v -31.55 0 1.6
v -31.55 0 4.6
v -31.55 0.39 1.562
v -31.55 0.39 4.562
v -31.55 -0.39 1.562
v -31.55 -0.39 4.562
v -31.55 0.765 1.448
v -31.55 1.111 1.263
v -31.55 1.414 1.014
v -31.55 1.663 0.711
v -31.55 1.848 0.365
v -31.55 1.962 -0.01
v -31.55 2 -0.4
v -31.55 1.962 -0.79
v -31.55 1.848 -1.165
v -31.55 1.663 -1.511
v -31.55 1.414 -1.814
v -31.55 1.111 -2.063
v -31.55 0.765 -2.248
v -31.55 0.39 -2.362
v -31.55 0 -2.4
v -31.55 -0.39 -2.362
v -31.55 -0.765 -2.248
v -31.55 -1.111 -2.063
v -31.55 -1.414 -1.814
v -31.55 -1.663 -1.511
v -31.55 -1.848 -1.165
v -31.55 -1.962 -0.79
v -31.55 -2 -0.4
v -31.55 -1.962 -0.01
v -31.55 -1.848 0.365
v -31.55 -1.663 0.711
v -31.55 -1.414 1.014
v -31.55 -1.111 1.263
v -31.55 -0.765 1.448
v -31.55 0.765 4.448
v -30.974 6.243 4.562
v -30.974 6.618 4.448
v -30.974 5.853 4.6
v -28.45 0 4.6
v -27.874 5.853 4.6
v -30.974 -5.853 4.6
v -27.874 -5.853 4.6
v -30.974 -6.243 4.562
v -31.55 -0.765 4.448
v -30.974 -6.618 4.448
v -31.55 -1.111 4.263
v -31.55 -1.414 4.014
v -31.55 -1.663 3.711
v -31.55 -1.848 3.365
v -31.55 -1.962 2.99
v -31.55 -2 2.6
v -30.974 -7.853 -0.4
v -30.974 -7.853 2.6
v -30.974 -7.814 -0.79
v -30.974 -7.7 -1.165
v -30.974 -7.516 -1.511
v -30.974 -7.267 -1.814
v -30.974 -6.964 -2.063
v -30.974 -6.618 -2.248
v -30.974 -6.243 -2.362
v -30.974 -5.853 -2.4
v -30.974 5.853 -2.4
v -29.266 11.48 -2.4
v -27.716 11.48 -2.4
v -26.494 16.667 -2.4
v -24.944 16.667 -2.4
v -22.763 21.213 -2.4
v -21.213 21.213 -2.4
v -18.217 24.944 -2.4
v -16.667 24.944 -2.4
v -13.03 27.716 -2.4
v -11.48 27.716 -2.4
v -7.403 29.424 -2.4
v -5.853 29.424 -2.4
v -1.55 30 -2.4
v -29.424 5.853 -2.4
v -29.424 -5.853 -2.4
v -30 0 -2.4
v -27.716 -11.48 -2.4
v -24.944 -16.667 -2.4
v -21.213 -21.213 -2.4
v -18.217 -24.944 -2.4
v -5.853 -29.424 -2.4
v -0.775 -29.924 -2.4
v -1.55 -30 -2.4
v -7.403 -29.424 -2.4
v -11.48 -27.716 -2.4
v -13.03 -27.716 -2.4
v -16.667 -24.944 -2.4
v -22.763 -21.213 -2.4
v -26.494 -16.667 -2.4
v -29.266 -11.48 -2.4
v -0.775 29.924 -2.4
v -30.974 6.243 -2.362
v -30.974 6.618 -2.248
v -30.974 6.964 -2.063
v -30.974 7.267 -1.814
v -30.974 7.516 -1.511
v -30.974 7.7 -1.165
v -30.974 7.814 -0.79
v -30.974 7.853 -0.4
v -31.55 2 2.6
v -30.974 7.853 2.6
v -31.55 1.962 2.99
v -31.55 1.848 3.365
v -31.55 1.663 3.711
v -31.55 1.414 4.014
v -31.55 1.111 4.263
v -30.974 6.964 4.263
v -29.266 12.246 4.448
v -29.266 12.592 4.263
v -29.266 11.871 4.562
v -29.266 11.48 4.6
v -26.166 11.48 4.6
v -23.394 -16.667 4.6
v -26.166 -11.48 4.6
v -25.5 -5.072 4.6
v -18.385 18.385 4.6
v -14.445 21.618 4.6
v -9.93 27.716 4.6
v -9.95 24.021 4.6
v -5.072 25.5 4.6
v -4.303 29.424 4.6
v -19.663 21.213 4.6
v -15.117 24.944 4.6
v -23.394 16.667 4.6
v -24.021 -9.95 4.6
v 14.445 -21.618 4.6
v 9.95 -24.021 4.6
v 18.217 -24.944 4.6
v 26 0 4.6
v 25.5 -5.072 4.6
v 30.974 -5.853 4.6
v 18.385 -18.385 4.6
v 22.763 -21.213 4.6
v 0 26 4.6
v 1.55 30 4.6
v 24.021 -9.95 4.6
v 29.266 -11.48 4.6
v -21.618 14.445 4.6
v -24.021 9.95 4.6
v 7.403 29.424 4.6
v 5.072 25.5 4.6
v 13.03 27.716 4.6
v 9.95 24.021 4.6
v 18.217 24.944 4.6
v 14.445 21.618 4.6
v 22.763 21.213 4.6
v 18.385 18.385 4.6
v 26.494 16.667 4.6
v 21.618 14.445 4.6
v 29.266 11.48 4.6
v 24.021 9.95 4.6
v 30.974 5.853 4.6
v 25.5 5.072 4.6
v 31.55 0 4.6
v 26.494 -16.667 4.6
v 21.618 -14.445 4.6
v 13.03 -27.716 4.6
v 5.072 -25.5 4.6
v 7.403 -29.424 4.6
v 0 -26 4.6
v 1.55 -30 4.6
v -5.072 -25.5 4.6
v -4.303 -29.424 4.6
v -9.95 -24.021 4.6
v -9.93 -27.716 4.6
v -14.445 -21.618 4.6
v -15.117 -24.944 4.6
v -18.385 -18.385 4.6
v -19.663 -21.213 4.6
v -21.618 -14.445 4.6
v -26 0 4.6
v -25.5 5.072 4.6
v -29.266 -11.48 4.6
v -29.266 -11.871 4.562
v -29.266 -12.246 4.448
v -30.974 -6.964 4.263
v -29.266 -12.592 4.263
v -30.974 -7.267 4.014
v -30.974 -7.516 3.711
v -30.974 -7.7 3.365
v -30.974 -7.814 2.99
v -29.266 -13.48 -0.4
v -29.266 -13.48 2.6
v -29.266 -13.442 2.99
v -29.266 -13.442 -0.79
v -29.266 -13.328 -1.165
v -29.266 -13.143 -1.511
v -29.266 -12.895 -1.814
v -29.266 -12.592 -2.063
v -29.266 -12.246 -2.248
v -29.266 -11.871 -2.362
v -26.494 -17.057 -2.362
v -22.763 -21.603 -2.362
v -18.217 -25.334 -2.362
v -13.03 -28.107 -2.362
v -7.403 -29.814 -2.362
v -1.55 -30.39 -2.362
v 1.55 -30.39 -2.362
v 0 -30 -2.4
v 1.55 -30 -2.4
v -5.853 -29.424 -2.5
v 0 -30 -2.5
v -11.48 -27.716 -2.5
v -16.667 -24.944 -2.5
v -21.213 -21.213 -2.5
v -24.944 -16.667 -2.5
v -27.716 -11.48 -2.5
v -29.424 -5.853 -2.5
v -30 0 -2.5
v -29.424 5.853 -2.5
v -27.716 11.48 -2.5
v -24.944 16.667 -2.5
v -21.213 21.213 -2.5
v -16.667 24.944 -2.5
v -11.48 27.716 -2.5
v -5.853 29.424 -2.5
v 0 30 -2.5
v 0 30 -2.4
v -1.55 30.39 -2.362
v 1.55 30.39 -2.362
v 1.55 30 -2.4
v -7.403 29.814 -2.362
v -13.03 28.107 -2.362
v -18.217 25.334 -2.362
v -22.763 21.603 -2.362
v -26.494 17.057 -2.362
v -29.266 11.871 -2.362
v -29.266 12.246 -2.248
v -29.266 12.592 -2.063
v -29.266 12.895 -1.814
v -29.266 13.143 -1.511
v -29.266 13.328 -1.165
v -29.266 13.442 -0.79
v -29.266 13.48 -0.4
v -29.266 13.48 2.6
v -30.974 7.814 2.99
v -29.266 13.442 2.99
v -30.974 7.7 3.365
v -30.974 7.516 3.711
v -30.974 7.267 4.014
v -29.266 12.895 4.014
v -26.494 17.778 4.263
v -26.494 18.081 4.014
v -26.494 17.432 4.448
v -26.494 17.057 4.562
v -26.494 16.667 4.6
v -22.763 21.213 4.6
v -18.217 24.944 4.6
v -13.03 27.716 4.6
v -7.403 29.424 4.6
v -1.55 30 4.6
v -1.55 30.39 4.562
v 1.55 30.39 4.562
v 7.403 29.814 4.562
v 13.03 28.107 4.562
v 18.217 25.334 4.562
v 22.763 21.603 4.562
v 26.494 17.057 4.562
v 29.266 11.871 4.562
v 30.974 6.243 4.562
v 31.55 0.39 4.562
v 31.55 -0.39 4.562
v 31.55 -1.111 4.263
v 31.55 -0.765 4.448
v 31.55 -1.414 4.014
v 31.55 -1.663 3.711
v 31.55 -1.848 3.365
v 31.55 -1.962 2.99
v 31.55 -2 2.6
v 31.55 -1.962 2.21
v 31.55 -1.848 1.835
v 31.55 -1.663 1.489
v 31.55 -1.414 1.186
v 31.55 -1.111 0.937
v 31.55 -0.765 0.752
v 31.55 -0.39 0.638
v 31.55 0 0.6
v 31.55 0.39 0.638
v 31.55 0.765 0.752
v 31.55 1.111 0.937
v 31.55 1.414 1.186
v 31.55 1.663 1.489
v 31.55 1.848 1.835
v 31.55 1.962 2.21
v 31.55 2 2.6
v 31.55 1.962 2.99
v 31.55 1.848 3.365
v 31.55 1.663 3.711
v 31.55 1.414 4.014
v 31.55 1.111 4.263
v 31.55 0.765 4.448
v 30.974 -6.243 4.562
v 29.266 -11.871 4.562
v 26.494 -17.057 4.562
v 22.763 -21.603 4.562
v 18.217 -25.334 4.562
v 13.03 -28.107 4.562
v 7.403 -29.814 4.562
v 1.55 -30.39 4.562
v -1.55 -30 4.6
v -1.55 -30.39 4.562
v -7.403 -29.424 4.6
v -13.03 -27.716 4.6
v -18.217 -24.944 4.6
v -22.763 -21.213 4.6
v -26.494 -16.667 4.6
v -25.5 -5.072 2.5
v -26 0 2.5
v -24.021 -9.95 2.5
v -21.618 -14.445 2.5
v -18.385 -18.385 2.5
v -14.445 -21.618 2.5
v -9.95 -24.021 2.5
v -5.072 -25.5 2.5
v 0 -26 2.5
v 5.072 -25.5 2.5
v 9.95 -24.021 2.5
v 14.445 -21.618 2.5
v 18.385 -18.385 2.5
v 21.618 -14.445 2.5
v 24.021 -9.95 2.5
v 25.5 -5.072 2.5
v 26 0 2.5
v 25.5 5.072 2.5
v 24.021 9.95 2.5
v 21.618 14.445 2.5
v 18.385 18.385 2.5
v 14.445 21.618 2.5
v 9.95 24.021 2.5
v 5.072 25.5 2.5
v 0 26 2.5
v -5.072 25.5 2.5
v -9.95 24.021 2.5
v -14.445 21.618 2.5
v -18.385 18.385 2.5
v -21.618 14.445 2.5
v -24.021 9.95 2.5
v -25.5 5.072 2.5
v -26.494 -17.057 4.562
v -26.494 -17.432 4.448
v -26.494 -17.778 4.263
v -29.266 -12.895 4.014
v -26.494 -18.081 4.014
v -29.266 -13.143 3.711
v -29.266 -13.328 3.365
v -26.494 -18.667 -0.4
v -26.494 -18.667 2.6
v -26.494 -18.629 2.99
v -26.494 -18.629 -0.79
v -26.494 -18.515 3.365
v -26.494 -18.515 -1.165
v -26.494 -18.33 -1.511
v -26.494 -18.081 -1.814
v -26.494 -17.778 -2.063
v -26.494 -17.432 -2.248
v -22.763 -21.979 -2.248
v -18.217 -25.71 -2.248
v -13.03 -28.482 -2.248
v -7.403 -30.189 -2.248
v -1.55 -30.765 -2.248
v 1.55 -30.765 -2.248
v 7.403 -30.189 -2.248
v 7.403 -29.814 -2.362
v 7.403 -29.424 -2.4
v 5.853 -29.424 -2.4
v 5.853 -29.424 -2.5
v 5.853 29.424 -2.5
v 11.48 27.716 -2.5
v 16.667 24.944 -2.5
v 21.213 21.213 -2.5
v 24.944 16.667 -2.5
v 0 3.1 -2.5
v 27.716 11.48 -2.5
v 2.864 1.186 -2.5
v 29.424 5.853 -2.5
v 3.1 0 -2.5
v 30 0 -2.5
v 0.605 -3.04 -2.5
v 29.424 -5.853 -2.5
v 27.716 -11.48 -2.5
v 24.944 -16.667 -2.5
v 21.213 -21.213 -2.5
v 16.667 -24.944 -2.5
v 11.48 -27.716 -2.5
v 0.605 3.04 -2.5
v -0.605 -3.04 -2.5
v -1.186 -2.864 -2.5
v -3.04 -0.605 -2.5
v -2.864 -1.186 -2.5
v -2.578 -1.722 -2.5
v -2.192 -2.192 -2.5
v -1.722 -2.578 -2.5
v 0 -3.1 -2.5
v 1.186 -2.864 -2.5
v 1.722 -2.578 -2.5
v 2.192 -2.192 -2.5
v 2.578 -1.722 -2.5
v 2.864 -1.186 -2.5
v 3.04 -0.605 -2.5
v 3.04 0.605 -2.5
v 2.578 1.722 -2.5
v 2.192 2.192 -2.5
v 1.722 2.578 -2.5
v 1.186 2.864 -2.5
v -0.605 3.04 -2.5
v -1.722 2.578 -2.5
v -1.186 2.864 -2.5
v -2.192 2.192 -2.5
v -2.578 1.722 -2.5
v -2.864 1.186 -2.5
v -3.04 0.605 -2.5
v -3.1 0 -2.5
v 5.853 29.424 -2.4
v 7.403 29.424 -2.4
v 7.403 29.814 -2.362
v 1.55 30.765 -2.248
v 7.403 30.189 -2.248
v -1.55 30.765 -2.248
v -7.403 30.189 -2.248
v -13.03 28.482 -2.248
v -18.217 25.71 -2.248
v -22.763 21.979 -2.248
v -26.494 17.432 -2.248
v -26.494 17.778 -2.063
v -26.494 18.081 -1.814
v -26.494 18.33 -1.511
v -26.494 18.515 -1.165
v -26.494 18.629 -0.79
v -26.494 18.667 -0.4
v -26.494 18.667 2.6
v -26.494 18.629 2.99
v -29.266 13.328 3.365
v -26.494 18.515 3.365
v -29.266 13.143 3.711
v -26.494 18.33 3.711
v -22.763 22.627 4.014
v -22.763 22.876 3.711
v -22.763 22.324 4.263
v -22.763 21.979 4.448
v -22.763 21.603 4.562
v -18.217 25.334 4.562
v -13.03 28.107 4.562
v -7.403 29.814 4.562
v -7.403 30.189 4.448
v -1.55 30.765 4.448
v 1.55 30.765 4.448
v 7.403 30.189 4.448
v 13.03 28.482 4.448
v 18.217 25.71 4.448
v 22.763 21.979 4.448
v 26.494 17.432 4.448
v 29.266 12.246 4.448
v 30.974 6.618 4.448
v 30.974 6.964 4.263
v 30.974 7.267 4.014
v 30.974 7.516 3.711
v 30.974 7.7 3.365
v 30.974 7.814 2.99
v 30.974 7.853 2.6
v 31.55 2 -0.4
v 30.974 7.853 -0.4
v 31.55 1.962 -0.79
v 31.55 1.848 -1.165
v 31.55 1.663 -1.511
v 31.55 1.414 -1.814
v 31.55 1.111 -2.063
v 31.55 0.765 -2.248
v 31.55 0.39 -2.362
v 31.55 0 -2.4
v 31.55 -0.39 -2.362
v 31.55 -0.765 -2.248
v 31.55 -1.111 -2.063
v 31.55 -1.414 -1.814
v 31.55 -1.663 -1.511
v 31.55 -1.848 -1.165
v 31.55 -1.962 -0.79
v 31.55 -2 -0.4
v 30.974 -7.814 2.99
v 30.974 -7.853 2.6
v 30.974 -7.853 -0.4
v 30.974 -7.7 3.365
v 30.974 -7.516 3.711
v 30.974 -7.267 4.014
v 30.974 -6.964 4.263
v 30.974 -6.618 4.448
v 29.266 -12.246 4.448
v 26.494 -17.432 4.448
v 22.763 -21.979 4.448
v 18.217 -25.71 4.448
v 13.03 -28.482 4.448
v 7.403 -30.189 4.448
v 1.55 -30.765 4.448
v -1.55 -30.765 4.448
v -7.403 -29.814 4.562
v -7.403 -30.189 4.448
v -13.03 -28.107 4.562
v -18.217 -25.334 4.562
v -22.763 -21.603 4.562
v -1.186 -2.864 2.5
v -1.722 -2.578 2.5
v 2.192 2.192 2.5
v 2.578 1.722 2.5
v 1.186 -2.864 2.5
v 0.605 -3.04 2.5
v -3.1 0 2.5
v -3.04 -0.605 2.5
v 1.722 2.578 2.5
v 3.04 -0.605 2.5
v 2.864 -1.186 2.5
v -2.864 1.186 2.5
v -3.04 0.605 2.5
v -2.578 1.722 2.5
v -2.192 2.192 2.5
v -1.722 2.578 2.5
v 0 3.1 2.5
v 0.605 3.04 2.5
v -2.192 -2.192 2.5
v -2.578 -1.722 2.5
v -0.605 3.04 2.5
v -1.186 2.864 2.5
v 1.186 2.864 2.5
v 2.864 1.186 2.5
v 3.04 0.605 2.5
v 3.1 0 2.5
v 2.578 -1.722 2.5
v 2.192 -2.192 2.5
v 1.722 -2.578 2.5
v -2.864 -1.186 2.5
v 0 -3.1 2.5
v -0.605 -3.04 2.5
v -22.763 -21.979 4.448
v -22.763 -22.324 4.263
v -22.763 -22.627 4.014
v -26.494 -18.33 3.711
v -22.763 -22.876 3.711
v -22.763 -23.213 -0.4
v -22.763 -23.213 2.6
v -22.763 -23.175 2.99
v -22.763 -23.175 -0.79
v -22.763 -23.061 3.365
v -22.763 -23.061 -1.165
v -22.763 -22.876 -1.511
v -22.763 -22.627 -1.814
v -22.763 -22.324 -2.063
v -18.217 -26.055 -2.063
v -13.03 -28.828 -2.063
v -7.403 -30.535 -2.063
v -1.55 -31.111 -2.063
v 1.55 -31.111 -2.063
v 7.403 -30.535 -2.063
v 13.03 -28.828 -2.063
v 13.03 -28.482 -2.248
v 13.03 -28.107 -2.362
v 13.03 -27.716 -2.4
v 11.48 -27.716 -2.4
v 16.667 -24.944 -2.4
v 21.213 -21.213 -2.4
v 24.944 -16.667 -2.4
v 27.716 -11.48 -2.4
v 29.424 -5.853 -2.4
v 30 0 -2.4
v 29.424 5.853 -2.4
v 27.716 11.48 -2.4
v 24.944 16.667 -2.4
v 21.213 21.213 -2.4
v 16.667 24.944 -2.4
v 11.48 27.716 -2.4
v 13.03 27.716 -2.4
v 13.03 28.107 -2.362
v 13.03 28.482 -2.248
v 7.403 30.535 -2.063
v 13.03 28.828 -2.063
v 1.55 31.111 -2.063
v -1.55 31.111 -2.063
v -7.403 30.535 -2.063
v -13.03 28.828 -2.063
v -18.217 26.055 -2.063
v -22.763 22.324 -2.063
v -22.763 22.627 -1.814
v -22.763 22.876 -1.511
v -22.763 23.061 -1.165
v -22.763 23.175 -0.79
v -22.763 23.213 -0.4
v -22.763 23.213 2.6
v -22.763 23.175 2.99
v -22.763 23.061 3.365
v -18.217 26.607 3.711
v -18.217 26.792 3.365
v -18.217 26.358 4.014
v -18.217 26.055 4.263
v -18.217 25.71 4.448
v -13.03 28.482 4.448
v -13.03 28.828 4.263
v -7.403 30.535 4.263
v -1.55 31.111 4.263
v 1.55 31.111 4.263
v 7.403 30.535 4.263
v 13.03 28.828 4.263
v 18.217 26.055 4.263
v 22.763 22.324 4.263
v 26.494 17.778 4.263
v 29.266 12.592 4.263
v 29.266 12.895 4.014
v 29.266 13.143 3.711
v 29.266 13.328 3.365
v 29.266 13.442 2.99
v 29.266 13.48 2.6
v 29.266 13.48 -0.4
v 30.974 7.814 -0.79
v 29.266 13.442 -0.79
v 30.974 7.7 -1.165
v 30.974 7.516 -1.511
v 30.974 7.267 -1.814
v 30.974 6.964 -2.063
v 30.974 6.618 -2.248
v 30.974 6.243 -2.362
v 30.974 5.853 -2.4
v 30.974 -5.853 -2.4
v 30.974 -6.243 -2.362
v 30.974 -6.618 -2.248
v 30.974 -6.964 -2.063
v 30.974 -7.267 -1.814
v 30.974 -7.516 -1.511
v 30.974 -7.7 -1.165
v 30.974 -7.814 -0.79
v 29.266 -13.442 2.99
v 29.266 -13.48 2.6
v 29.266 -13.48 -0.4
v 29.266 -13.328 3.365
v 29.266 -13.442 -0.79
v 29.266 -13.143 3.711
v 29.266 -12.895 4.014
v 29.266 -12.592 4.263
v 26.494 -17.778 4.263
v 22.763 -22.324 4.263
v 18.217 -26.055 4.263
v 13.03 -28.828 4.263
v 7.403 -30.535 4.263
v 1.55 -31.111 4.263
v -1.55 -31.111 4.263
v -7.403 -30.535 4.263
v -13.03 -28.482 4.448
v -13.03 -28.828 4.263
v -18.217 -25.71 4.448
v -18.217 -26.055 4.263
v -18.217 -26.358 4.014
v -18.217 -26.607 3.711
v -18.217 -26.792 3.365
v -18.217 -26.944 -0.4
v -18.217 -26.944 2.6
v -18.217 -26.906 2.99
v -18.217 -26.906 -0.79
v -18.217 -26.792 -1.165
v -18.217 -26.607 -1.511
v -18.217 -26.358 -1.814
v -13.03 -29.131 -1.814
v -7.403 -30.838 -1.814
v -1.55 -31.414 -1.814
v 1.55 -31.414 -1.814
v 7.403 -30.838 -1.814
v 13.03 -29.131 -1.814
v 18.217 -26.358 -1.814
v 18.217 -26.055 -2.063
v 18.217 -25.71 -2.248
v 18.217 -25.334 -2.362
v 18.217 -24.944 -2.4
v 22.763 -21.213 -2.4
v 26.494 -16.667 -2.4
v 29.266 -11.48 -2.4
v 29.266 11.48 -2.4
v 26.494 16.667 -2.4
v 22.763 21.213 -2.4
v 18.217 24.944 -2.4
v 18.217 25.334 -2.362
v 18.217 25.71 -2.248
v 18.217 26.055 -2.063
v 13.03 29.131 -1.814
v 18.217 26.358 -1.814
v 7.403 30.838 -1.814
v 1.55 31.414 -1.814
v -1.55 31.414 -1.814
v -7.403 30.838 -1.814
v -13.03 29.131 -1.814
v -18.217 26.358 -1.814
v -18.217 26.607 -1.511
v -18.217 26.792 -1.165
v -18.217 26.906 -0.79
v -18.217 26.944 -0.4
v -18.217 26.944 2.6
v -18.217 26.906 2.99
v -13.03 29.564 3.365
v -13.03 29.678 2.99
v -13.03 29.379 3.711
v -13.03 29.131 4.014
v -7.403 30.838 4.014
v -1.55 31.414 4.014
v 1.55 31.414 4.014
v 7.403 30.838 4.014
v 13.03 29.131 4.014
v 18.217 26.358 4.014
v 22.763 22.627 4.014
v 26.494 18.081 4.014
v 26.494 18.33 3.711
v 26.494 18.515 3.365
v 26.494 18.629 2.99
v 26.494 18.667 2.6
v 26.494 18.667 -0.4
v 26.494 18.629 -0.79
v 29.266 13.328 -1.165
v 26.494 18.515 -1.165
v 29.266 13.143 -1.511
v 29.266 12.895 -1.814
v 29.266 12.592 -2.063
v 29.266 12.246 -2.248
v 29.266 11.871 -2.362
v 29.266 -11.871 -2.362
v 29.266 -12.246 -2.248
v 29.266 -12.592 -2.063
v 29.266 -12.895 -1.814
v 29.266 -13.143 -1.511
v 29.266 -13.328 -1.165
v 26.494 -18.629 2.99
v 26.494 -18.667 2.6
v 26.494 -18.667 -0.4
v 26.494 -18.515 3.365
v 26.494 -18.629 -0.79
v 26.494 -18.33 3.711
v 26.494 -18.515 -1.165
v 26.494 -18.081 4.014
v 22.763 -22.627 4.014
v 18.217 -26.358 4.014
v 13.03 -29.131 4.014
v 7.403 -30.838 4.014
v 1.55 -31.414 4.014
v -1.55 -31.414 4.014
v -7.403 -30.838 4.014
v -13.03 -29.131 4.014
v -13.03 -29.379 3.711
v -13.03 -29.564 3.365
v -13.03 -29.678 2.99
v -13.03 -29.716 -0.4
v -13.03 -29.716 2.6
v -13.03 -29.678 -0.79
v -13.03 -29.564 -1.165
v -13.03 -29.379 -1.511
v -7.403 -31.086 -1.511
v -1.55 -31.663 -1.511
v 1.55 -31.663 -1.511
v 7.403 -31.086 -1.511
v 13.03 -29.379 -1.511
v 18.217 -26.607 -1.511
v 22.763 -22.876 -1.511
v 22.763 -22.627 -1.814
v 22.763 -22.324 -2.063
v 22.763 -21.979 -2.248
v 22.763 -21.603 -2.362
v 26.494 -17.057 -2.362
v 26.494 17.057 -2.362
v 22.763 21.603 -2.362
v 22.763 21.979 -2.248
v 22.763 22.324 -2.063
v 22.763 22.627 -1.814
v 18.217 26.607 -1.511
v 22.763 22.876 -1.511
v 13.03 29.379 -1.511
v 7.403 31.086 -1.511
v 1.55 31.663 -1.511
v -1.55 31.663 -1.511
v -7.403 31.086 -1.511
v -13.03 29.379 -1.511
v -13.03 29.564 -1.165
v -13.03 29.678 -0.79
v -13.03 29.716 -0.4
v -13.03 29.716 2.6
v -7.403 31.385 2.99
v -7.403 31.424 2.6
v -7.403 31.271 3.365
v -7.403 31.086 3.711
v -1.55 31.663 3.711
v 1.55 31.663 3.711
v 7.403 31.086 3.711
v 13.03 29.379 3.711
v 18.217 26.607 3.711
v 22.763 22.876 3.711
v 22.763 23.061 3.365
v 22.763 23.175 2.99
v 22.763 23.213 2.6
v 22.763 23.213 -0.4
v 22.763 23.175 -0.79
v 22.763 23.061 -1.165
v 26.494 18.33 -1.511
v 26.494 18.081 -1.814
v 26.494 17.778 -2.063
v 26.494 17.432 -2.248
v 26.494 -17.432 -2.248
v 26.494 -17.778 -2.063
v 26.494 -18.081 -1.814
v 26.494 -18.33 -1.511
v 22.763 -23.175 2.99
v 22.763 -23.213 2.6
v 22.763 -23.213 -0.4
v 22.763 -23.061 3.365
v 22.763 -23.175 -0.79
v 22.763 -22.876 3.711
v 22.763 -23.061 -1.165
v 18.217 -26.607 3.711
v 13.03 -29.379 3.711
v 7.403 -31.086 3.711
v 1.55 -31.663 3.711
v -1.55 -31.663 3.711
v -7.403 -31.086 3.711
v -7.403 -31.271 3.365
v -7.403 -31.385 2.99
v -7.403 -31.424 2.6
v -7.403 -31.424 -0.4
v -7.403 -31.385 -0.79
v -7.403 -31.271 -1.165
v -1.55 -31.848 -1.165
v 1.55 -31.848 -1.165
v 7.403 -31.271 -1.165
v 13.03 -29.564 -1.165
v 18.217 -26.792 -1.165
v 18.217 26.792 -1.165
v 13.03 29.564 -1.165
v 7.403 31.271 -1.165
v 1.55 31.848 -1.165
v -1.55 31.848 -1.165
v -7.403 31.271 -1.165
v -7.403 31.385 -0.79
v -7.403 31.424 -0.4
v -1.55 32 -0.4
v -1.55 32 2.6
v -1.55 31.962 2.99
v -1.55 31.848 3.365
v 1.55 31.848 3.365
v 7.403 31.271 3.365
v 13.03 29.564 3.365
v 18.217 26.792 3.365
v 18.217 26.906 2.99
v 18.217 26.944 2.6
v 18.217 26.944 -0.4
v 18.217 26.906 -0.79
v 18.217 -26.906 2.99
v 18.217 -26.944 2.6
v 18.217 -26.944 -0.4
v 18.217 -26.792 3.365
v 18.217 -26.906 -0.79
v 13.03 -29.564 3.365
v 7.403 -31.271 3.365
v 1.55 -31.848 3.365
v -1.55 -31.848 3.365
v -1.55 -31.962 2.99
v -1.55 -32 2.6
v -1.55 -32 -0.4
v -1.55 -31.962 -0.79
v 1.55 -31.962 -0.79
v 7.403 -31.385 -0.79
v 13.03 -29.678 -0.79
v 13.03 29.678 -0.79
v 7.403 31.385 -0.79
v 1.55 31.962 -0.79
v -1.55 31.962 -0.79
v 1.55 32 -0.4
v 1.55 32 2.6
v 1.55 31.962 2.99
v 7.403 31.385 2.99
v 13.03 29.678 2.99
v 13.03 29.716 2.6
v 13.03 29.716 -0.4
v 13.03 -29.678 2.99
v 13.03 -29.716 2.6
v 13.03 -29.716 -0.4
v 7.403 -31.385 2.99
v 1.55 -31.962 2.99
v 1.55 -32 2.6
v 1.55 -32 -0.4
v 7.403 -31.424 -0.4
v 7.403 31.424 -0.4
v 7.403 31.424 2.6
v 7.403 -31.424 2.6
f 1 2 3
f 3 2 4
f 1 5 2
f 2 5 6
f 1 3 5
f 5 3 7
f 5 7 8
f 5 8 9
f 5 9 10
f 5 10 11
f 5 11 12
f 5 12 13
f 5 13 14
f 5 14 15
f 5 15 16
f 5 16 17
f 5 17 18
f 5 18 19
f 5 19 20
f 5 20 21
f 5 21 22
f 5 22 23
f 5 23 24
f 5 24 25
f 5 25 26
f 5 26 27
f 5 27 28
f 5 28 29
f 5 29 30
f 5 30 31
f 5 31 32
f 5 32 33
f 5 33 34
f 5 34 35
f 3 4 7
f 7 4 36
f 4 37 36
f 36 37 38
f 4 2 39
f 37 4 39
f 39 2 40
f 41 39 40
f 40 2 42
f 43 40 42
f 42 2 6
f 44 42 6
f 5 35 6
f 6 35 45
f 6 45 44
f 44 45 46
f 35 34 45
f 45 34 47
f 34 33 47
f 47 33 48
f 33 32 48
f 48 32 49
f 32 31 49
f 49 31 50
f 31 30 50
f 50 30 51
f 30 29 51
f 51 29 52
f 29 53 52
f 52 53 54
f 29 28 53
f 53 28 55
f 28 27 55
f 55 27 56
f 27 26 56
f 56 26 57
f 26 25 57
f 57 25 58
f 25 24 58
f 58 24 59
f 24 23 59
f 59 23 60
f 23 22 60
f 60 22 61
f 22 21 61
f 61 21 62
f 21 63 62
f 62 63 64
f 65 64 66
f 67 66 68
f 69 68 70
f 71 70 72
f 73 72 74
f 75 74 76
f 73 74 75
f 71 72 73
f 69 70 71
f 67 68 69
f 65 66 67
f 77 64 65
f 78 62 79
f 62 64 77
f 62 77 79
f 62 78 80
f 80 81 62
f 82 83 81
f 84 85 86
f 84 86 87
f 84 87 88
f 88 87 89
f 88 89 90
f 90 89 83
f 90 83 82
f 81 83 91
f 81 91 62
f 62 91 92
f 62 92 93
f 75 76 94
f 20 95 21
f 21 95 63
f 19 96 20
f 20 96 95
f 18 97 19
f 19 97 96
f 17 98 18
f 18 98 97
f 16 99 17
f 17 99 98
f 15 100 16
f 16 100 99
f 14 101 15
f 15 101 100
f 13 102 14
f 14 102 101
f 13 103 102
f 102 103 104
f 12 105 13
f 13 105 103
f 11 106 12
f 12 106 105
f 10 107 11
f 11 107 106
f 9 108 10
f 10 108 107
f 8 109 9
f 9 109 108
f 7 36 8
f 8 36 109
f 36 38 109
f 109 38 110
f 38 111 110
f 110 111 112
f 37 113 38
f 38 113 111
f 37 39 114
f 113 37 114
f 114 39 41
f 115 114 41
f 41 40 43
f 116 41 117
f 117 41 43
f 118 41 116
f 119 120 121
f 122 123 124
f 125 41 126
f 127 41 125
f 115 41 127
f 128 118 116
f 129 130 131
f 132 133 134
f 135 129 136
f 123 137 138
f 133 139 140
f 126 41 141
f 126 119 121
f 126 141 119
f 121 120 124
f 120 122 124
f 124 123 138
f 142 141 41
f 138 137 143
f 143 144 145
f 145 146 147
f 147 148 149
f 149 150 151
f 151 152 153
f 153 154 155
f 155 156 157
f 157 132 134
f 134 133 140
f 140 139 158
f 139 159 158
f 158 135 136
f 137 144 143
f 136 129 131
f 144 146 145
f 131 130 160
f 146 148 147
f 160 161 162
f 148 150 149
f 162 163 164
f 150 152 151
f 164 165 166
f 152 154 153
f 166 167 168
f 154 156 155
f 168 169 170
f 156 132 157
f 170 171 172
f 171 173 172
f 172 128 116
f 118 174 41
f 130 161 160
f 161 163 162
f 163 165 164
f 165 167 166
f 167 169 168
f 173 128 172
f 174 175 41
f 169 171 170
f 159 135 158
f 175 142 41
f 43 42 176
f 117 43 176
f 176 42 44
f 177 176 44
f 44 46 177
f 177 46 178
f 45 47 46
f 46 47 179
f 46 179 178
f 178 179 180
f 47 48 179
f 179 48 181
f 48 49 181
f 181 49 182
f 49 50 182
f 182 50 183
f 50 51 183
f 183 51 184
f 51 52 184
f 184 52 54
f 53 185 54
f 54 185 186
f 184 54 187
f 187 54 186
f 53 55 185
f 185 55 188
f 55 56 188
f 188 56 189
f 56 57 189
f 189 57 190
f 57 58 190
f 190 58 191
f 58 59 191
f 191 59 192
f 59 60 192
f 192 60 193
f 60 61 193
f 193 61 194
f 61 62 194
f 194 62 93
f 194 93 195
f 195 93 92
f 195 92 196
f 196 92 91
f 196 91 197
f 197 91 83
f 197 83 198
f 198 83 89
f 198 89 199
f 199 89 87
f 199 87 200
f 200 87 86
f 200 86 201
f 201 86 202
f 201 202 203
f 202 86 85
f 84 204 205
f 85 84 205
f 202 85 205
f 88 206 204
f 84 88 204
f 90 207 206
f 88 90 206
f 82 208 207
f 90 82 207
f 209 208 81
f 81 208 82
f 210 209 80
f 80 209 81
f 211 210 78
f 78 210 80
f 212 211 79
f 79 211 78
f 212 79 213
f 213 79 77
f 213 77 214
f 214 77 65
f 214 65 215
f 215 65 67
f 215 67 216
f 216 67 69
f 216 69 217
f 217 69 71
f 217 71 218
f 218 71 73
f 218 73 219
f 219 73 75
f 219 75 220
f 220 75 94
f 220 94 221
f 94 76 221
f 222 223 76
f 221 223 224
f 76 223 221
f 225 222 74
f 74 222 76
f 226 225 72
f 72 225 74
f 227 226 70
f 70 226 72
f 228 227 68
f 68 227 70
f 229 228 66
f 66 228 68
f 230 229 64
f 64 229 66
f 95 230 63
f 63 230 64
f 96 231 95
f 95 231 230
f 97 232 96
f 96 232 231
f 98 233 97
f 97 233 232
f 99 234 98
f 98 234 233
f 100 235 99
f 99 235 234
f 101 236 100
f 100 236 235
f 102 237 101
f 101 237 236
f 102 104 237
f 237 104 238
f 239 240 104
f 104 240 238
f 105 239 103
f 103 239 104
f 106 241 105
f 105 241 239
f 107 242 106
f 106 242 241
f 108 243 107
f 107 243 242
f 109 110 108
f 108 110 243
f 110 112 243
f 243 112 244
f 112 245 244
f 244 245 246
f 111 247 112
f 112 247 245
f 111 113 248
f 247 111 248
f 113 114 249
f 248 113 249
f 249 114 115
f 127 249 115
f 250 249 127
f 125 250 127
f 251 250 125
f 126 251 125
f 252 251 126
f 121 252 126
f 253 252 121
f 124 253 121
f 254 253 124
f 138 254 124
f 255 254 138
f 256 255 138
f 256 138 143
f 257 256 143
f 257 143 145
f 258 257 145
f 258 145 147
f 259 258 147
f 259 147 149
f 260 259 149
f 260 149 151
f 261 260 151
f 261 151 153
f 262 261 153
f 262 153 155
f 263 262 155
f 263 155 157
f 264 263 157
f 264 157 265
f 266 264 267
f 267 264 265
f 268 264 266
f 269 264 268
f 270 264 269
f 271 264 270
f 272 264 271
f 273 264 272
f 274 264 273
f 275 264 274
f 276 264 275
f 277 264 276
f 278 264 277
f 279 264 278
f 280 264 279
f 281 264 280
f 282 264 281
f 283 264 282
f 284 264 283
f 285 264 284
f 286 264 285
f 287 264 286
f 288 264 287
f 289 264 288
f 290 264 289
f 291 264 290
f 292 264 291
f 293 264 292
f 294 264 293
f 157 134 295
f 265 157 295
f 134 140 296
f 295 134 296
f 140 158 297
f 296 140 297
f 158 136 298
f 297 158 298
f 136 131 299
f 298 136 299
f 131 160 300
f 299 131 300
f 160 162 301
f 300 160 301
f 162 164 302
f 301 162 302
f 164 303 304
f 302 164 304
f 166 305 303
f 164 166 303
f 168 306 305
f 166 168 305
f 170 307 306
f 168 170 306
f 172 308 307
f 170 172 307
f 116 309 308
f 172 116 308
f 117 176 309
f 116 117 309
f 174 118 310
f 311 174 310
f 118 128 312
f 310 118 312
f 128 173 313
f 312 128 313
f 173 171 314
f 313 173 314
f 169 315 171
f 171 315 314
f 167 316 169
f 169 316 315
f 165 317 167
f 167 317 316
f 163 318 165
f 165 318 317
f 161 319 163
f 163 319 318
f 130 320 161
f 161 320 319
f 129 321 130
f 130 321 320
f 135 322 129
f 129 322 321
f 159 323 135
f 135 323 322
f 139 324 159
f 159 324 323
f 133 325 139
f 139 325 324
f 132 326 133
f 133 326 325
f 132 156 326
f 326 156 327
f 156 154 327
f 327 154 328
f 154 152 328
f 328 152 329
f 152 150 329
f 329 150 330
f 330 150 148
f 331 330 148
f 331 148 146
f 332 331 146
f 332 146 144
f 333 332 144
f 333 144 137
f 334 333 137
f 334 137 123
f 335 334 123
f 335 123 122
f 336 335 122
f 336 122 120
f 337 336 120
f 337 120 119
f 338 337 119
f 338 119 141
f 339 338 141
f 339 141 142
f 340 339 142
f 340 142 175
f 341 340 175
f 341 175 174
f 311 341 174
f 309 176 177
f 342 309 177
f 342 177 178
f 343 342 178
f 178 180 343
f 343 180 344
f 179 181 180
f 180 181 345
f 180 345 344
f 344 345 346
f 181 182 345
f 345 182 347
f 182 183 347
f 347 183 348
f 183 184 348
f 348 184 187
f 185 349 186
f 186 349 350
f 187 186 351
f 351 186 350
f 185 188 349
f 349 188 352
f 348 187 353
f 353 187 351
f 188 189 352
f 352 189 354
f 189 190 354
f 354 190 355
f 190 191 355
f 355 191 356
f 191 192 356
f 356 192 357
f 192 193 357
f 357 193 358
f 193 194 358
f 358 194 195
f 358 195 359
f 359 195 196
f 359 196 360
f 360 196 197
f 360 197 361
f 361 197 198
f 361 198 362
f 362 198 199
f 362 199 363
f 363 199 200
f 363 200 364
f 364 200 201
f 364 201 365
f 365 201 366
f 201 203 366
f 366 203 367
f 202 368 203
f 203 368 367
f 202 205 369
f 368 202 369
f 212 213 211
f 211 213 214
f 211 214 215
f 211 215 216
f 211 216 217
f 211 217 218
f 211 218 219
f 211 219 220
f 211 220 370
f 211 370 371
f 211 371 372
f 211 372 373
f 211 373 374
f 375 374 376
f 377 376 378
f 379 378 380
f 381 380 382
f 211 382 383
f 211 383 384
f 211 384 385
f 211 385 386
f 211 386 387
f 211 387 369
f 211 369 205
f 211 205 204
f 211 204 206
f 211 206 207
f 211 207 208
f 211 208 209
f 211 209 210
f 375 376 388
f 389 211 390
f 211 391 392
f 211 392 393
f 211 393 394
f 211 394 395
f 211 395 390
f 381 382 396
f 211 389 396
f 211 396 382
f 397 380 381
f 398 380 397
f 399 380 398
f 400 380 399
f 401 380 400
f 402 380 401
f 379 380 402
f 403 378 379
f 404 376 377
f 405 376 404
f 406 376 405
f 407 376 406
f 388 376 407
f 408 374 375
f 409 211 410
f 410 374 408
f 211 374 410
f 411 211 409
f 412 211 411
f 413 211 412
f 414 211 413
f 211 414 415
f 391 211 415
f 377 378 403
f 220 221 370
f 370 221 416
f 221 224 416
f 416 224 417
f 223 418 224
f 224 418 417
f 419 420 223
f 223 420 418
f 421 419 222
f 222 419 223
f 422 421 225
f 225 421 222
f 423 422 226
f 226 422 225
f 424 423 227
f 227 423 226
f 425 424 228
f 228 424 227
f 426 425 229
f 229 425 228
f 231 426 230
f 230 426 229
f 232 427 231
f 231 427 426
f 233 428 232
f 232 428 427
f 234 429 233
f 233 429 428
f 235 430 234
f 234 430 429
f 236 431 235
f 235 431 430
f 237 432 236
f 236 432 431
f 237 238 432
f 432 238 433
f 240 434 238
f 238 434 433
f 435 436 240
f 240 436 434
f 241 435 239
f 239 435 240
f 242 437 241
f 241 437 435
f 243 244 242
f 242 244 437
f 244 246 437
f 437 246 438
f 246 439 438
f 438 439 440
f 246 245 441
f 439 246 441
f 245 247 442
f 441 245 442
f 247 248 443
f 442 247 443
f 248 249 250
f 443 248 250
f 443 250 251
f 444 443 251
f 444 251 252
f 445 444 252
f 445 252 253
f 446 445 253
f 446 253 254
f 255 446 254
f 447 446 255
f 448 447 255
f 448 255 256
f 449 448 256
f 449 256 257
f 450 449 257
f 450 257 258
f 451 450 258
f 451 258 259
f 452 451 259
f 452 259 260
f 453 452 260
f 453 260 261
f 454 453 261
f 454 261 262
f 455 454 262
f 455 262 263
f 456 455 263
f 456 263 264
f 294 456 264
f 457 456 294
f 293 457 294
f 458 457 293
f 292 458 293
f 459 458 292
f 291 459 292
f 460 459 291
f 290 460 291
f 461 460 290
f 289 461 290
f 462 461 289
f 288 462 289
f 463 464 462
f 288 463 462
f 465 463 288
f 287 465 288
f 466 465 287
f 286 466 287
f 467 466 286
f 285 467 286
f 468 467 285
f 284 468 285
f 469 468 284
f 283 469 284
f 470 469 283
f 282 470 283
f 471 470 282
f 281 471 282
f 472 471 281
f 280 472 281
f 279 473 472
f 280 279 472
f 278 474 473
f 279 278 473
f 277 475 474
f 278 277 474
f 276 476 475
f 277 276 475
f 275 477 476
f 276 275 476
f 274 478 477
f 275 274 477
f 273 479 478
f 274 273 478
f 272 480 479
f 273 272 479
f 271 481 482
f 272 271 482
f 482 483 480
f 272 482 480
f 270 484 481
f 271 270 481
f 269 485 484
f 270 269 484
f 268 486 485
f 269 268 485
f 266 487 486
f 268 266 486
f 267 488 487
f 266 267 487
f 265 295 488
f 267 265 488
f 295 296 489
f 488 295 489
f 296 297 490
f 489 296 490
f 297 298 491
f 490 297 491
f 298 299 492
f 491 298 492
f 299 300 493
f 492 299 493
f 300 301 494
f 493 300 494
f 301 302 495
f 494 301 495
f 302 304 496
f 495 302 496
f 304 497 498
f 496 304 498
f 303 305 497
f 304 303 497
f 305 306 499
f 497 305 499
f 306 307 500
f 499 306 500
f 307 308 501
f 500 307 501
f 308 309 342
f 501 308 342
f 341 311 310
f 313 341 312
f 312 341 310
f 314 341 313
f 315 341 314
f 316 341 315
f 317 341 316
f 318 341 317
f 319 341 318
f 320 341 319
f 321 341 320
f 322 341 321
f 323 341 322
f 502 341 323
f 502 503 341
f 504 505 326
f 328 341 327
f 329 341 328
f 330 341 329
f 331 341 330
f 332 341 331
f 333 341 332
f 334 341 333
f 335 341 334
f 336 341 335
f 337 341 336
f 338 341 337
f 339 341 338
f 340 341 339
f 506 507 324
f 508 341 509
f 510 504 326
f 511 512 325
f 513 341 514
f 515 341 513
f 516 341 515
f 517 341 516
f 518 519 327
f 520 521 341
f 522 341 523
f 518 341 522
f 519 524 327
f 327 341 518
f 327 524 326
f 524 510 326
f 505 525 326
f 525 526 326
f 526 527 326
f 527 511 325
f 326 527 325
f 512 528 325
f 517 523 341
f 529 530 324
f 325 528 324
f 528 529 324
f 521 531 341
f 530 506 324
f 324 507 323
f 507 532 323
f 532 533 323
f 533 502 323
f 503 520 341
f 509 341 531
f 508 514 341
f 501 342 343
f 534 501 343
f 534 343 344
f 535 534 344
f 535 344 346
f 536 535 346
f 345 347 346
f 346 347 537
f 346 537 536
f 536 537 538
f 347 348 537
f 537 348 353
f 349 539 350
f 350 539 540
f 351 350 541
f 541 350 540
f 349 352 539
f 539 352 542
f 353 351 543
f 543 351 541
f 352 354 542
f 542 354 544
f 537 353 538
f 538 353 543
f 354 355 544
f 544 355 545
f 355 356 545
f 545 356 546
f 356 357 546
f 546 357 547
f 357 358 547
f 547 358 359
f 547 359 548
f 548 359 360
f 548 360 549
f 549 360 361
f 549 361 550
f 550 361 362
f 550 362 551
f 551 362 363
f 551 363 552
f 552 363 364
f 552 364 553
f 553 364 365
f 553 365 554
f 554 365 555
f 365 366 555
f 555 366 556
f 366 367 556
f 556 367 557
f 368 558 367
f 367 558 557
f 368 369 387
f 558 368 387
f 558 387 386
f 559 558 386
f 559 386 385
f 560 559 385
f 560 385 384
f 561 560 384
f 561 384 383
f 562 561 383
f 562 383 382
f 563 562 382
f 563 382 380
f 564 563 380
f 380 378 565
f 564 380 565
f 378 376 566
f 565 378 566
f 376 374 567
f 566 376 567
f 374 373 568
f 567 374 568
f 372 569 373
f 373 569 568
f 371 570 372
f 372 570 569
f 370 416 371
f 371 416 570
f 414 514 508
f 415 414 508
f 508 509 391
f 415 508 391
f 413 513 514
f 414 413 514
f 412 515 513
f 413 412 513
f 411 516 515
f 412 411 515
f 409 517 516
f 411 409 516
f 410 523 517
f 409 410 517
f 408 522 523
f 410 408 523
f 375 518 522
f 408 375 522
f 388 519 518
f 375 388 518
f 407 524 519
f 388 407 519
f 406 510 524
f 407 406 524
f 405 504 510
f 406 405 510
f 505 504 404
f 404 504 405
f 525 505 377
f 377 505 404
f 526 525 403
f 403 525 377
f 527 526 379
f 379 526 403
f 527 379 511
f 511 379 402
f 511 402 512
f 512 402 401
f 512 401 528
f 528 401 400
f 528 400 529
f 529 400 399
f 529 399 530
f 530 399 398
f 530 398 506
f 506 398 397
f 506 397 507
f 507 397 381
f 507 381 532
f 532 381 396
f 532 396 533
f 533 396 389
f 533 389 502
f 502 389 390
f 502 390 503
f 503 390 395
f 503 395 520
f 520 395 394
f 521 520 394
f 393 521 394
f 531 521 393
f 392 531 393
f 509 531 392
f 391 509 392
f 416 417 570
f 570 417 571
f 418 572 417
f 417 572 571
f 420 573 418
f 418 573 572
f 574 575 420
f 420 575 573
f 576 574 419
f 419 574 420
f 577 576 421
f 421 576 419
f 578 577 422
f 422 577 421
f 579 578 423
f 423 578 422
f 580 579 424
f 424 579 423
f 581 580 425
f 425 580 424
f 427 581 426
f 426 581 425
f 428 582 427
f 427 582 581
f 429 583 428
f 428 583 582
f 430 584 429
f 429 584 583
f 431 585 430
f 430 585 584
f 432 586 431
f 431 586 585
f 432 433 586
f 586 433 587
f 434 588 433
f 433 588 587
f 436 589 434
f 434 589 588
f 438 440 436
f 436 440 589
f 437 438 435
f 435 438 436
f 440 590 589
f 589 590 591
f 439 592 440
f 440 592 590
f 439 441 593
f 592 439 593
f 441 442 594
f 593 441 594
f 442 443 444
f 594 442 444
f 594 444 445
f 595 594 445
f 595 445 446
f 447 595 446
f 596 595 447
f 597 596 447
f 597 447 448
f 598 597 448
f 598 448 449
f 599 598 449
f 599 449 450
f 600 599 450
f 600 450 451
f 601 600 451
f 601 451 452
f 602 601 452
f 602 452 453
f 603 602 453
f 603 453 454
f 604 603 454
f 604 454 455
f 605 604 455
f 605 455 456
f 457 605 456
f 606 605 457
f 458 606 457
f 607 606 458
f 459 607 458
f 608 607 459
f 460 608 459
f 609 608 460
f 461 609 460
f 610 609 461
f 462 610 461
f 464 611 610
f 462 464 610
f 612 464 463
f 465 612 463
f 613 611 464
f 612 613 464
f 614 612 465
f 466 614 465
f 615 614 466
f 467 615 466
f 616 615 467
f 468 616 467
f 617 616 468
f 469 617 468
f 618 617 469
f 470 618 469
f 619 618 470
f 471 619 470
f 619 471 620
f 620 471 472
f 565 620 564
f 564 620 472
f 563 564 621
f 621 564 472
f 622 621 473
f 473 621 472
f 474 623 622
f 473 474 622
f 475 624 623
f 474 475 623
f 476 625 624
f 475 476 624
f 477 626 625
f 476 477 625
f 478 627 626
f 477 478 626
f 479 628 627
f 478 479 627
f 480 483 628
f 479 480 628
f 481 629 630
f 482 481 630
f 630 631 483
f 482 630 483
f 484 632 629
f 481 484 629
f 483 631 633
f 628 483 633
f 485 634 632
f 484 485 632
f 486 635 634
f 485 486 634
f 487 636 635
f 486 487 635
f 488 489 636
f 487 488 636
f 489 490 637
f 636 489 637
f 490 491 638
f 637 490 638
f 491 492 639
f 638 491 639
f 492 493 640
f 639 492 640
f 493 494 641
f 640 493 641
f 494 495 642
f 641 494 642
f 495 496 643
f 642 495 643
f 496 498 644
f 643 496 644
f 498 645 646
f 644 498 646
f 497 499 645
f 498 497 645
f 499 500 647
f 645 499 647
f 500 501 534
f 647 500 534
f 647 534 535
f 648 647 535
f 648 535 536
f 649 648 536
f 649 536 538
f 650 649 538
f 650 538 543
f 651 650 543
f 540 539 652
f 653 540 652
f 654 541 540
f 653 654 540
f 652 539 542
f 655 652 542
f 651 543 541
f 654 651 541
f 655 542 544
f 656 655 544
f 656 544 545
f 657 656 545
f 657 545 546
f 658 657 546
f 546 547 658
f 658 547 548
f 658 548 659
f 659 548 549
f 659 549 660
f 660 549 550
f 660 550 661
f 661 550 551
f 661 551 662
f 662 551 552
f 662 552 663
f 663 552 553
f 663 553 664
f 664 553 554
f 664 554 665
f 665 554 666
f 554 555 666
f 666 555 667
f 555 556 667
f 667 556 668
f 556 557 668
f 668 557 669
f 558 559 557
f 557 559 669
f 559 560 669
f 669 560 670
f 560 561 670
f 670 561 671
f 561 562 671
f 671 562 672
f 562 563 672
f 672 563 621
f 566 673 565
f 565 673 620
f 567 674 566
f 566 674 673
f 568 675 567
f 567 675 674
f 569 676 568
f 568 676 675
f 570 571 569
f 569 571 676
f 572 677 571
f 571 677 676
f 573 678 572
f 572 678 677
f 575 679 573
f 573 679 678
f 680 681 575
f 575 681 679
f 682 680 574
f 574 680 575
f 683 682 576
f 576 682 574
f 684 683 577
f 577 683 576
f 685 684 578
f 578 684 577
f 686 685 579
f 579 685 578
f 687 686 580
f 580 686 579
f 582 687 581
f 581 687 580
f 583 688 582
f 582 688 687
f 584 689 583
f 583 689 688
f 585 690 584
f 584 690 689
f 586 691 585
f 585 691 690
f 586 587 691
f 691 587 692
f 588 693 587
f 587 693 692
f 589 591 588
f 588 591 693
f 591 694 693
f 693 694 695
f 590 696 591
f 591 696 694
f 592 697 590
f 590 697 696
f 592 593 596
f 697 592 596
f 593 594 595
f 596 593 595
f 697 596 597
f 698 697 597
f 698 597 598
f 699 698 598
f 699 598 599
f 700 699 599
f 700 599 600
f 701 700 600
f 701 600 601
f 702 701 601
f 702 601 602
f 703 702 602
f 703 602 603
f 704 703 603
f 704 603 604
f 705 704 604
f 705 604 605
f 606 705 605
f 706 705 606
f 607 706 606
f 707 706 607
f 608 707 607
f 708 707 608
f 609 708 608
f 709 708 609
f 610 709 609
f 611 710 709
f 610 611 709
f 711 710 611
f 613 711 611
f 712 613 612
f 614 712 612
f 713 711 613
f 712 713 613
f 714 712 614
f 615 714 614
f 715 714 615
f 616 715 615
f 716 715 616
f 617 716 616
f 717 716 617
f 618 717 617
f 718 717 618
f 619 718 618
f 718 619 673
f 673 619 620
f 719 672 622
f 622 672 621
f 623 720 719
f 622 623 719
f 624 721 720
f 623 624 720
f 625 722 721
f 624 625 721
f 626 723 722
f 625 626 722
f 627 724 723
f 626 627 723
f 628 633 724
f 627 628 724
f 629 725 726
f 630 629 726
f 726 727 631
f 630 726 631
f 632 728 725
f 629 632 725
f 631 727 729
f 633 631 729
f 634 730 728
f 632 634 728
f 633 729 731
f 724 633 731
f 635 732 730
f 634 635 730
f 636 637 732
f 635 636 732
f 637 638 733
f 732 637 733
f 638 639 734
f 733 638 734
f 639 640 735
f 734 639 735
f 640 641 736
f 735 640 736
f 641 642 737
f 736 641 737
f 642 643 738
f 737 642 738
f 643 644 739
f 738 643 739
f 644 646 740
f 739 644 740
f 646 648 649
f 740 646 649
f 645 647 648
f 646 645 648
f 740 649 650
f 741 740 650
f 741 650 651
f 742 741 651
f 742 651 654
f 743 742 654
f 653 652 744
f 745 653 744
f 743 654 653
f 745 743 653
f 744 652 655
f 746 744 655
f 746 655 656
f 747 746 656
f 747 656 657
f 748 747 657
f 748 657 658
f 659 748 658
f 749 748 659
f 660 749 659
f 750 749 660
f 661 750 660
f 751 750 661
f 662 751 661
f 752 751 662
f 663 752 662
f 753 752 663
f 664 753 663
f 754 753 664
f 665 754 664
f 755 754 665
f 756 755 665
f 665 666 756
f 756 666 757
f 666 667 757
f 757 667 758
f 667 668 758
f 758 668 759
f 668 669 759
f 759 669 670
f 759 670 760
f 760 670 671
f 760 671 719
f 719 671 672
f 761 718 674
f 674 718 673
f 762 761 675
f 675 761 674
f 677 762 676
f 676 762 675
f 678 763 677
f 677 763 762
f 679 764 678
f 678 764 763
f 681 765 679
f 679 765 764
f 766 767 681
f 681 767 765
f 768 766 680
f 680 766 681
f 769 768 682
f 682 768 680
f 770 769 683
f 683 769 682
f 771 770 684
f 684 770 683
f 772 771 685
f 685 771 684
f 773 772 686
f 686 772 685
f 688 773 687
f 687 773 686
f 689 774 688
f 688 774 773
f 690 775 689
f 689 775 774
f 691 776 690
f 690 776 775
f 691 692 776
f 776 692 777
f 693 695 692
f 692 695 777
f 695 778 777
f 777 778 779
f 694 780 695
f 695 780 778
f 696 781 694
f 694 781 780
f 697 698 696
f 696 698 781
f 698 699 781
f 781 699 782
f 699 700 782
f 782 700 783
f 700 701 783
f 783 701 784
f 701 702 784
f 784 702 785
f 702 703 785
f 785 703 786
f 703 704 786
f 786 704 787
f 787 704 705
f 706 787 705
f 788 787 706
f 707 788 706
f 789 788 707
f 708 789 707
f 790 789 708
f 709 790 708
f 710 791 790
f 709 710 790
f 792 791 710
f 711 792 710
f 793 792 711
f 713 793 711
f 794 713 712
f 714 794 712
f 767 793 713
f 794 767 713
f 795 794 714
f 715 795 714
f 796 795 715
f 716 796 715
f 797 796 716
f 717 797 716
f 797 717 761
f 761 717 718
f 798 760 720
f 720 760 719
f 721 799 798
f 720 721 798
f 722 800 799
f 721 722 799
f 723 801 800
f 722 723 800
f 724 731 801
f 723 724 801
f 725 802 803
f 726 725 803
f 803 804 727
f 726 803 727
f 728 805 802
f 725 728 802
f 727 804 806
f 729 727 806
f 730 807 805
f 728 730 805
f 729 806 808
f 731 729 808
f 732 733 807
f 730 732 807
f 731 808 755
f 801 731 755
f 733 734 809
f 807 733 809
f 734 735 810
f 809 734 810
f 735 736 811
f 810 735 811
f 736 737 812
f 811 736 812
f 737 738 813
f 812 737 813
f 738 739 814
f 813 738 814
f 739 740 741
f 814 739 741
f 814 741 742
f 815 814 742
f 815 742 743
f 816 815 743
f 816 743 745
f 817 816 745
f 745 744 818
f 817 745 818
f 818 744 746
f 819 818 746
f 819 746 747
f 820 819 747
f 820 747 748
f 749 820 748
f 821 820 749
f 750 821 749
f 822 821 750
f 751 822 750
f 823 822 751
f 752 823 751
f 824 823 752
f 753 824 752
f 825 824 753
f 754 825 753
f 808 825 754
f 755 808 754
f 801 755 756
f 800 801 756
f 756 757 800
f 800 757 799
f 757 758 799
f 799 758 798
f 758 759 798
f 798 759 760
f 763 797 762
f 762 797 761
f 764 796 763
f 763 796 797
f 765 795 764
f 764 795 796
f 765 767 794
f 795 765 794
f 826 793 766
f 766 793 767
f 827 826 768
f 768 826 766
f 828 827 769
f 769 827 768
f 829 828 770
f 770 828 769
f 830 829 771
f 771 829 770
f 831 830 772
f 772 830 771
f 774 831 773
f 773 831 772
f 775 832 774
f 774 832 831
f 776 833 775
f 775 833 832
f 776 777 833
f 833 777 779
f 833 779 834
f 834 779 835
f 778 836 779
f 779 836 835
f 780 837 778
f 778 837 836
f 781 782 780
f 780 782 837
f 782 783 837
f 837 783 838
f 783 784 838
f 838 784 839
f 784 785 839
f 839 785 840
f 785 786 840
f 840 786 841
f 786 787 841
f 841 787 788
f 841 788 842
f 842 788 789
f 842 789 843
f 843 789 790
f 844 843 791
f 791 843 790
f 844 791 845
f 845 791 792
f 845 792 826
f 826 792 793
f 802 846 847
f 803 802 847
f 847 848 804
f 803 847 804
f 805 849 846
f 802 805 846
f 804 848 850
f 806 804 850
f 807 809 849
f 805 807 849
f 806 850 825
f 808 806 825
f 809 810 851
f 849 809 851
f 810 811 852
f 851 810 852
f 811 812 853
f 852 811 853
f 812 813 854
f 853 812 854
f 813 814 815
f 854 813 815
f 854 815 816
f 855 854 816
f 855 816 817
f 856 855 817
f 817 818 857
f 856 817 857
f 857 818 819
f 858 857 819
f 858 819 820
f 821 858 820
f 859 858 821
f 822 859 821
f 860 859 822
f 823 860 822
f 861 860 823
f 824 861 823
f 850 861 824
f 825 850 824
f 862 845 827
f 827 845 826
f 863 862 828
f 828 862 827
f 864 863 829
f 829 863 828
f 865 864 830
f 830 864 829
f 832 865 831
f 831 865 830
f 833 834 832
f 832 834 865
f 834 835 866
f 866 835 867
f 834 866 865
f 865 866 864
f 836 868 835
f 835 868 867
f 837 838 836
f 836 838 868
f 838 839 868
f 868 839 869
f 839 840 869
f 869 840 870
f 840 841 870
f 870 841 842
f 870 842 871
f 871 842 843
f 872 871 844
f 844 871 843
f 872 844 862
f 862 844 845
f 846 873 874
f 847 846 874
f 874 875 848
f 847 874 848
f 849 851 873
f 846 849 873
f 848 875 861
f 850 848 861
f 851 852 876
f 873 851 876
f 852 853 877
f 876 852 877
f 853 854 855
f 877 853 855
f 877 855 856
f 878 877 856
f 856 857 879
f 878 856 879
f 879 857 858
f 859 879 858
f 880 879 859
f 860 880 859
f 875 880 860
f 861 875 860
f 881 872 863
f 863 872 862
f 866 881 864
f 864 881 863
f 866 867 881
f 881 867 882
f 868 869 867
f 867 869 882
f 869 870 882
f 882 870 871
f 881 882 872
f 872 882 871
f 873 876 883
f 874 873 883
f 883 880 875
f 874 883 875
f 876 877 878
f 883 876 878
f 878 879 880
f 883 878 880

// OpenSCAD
module knob()
{
	union()
	{
		translate([0,0,1.1]) 
		difference()
		{
			minkowski()
			{
				cylinder(r=60/2,h=3,center=true,$fn=32);
				rotate([0,90,0]) cylinder(r=4/2,h=3.1,center=true,$fn=32);
			}
			cylinder(r=52/2,h=10.1,center=true,$fn=32);
		}

		difference()
		{
			cylinder(r=60/2,h=5,center=true,$fn=32);
			cylinder(r=6.2/2,h=5.1,center=true,$fn=32);
		}
	}
}

knob();
